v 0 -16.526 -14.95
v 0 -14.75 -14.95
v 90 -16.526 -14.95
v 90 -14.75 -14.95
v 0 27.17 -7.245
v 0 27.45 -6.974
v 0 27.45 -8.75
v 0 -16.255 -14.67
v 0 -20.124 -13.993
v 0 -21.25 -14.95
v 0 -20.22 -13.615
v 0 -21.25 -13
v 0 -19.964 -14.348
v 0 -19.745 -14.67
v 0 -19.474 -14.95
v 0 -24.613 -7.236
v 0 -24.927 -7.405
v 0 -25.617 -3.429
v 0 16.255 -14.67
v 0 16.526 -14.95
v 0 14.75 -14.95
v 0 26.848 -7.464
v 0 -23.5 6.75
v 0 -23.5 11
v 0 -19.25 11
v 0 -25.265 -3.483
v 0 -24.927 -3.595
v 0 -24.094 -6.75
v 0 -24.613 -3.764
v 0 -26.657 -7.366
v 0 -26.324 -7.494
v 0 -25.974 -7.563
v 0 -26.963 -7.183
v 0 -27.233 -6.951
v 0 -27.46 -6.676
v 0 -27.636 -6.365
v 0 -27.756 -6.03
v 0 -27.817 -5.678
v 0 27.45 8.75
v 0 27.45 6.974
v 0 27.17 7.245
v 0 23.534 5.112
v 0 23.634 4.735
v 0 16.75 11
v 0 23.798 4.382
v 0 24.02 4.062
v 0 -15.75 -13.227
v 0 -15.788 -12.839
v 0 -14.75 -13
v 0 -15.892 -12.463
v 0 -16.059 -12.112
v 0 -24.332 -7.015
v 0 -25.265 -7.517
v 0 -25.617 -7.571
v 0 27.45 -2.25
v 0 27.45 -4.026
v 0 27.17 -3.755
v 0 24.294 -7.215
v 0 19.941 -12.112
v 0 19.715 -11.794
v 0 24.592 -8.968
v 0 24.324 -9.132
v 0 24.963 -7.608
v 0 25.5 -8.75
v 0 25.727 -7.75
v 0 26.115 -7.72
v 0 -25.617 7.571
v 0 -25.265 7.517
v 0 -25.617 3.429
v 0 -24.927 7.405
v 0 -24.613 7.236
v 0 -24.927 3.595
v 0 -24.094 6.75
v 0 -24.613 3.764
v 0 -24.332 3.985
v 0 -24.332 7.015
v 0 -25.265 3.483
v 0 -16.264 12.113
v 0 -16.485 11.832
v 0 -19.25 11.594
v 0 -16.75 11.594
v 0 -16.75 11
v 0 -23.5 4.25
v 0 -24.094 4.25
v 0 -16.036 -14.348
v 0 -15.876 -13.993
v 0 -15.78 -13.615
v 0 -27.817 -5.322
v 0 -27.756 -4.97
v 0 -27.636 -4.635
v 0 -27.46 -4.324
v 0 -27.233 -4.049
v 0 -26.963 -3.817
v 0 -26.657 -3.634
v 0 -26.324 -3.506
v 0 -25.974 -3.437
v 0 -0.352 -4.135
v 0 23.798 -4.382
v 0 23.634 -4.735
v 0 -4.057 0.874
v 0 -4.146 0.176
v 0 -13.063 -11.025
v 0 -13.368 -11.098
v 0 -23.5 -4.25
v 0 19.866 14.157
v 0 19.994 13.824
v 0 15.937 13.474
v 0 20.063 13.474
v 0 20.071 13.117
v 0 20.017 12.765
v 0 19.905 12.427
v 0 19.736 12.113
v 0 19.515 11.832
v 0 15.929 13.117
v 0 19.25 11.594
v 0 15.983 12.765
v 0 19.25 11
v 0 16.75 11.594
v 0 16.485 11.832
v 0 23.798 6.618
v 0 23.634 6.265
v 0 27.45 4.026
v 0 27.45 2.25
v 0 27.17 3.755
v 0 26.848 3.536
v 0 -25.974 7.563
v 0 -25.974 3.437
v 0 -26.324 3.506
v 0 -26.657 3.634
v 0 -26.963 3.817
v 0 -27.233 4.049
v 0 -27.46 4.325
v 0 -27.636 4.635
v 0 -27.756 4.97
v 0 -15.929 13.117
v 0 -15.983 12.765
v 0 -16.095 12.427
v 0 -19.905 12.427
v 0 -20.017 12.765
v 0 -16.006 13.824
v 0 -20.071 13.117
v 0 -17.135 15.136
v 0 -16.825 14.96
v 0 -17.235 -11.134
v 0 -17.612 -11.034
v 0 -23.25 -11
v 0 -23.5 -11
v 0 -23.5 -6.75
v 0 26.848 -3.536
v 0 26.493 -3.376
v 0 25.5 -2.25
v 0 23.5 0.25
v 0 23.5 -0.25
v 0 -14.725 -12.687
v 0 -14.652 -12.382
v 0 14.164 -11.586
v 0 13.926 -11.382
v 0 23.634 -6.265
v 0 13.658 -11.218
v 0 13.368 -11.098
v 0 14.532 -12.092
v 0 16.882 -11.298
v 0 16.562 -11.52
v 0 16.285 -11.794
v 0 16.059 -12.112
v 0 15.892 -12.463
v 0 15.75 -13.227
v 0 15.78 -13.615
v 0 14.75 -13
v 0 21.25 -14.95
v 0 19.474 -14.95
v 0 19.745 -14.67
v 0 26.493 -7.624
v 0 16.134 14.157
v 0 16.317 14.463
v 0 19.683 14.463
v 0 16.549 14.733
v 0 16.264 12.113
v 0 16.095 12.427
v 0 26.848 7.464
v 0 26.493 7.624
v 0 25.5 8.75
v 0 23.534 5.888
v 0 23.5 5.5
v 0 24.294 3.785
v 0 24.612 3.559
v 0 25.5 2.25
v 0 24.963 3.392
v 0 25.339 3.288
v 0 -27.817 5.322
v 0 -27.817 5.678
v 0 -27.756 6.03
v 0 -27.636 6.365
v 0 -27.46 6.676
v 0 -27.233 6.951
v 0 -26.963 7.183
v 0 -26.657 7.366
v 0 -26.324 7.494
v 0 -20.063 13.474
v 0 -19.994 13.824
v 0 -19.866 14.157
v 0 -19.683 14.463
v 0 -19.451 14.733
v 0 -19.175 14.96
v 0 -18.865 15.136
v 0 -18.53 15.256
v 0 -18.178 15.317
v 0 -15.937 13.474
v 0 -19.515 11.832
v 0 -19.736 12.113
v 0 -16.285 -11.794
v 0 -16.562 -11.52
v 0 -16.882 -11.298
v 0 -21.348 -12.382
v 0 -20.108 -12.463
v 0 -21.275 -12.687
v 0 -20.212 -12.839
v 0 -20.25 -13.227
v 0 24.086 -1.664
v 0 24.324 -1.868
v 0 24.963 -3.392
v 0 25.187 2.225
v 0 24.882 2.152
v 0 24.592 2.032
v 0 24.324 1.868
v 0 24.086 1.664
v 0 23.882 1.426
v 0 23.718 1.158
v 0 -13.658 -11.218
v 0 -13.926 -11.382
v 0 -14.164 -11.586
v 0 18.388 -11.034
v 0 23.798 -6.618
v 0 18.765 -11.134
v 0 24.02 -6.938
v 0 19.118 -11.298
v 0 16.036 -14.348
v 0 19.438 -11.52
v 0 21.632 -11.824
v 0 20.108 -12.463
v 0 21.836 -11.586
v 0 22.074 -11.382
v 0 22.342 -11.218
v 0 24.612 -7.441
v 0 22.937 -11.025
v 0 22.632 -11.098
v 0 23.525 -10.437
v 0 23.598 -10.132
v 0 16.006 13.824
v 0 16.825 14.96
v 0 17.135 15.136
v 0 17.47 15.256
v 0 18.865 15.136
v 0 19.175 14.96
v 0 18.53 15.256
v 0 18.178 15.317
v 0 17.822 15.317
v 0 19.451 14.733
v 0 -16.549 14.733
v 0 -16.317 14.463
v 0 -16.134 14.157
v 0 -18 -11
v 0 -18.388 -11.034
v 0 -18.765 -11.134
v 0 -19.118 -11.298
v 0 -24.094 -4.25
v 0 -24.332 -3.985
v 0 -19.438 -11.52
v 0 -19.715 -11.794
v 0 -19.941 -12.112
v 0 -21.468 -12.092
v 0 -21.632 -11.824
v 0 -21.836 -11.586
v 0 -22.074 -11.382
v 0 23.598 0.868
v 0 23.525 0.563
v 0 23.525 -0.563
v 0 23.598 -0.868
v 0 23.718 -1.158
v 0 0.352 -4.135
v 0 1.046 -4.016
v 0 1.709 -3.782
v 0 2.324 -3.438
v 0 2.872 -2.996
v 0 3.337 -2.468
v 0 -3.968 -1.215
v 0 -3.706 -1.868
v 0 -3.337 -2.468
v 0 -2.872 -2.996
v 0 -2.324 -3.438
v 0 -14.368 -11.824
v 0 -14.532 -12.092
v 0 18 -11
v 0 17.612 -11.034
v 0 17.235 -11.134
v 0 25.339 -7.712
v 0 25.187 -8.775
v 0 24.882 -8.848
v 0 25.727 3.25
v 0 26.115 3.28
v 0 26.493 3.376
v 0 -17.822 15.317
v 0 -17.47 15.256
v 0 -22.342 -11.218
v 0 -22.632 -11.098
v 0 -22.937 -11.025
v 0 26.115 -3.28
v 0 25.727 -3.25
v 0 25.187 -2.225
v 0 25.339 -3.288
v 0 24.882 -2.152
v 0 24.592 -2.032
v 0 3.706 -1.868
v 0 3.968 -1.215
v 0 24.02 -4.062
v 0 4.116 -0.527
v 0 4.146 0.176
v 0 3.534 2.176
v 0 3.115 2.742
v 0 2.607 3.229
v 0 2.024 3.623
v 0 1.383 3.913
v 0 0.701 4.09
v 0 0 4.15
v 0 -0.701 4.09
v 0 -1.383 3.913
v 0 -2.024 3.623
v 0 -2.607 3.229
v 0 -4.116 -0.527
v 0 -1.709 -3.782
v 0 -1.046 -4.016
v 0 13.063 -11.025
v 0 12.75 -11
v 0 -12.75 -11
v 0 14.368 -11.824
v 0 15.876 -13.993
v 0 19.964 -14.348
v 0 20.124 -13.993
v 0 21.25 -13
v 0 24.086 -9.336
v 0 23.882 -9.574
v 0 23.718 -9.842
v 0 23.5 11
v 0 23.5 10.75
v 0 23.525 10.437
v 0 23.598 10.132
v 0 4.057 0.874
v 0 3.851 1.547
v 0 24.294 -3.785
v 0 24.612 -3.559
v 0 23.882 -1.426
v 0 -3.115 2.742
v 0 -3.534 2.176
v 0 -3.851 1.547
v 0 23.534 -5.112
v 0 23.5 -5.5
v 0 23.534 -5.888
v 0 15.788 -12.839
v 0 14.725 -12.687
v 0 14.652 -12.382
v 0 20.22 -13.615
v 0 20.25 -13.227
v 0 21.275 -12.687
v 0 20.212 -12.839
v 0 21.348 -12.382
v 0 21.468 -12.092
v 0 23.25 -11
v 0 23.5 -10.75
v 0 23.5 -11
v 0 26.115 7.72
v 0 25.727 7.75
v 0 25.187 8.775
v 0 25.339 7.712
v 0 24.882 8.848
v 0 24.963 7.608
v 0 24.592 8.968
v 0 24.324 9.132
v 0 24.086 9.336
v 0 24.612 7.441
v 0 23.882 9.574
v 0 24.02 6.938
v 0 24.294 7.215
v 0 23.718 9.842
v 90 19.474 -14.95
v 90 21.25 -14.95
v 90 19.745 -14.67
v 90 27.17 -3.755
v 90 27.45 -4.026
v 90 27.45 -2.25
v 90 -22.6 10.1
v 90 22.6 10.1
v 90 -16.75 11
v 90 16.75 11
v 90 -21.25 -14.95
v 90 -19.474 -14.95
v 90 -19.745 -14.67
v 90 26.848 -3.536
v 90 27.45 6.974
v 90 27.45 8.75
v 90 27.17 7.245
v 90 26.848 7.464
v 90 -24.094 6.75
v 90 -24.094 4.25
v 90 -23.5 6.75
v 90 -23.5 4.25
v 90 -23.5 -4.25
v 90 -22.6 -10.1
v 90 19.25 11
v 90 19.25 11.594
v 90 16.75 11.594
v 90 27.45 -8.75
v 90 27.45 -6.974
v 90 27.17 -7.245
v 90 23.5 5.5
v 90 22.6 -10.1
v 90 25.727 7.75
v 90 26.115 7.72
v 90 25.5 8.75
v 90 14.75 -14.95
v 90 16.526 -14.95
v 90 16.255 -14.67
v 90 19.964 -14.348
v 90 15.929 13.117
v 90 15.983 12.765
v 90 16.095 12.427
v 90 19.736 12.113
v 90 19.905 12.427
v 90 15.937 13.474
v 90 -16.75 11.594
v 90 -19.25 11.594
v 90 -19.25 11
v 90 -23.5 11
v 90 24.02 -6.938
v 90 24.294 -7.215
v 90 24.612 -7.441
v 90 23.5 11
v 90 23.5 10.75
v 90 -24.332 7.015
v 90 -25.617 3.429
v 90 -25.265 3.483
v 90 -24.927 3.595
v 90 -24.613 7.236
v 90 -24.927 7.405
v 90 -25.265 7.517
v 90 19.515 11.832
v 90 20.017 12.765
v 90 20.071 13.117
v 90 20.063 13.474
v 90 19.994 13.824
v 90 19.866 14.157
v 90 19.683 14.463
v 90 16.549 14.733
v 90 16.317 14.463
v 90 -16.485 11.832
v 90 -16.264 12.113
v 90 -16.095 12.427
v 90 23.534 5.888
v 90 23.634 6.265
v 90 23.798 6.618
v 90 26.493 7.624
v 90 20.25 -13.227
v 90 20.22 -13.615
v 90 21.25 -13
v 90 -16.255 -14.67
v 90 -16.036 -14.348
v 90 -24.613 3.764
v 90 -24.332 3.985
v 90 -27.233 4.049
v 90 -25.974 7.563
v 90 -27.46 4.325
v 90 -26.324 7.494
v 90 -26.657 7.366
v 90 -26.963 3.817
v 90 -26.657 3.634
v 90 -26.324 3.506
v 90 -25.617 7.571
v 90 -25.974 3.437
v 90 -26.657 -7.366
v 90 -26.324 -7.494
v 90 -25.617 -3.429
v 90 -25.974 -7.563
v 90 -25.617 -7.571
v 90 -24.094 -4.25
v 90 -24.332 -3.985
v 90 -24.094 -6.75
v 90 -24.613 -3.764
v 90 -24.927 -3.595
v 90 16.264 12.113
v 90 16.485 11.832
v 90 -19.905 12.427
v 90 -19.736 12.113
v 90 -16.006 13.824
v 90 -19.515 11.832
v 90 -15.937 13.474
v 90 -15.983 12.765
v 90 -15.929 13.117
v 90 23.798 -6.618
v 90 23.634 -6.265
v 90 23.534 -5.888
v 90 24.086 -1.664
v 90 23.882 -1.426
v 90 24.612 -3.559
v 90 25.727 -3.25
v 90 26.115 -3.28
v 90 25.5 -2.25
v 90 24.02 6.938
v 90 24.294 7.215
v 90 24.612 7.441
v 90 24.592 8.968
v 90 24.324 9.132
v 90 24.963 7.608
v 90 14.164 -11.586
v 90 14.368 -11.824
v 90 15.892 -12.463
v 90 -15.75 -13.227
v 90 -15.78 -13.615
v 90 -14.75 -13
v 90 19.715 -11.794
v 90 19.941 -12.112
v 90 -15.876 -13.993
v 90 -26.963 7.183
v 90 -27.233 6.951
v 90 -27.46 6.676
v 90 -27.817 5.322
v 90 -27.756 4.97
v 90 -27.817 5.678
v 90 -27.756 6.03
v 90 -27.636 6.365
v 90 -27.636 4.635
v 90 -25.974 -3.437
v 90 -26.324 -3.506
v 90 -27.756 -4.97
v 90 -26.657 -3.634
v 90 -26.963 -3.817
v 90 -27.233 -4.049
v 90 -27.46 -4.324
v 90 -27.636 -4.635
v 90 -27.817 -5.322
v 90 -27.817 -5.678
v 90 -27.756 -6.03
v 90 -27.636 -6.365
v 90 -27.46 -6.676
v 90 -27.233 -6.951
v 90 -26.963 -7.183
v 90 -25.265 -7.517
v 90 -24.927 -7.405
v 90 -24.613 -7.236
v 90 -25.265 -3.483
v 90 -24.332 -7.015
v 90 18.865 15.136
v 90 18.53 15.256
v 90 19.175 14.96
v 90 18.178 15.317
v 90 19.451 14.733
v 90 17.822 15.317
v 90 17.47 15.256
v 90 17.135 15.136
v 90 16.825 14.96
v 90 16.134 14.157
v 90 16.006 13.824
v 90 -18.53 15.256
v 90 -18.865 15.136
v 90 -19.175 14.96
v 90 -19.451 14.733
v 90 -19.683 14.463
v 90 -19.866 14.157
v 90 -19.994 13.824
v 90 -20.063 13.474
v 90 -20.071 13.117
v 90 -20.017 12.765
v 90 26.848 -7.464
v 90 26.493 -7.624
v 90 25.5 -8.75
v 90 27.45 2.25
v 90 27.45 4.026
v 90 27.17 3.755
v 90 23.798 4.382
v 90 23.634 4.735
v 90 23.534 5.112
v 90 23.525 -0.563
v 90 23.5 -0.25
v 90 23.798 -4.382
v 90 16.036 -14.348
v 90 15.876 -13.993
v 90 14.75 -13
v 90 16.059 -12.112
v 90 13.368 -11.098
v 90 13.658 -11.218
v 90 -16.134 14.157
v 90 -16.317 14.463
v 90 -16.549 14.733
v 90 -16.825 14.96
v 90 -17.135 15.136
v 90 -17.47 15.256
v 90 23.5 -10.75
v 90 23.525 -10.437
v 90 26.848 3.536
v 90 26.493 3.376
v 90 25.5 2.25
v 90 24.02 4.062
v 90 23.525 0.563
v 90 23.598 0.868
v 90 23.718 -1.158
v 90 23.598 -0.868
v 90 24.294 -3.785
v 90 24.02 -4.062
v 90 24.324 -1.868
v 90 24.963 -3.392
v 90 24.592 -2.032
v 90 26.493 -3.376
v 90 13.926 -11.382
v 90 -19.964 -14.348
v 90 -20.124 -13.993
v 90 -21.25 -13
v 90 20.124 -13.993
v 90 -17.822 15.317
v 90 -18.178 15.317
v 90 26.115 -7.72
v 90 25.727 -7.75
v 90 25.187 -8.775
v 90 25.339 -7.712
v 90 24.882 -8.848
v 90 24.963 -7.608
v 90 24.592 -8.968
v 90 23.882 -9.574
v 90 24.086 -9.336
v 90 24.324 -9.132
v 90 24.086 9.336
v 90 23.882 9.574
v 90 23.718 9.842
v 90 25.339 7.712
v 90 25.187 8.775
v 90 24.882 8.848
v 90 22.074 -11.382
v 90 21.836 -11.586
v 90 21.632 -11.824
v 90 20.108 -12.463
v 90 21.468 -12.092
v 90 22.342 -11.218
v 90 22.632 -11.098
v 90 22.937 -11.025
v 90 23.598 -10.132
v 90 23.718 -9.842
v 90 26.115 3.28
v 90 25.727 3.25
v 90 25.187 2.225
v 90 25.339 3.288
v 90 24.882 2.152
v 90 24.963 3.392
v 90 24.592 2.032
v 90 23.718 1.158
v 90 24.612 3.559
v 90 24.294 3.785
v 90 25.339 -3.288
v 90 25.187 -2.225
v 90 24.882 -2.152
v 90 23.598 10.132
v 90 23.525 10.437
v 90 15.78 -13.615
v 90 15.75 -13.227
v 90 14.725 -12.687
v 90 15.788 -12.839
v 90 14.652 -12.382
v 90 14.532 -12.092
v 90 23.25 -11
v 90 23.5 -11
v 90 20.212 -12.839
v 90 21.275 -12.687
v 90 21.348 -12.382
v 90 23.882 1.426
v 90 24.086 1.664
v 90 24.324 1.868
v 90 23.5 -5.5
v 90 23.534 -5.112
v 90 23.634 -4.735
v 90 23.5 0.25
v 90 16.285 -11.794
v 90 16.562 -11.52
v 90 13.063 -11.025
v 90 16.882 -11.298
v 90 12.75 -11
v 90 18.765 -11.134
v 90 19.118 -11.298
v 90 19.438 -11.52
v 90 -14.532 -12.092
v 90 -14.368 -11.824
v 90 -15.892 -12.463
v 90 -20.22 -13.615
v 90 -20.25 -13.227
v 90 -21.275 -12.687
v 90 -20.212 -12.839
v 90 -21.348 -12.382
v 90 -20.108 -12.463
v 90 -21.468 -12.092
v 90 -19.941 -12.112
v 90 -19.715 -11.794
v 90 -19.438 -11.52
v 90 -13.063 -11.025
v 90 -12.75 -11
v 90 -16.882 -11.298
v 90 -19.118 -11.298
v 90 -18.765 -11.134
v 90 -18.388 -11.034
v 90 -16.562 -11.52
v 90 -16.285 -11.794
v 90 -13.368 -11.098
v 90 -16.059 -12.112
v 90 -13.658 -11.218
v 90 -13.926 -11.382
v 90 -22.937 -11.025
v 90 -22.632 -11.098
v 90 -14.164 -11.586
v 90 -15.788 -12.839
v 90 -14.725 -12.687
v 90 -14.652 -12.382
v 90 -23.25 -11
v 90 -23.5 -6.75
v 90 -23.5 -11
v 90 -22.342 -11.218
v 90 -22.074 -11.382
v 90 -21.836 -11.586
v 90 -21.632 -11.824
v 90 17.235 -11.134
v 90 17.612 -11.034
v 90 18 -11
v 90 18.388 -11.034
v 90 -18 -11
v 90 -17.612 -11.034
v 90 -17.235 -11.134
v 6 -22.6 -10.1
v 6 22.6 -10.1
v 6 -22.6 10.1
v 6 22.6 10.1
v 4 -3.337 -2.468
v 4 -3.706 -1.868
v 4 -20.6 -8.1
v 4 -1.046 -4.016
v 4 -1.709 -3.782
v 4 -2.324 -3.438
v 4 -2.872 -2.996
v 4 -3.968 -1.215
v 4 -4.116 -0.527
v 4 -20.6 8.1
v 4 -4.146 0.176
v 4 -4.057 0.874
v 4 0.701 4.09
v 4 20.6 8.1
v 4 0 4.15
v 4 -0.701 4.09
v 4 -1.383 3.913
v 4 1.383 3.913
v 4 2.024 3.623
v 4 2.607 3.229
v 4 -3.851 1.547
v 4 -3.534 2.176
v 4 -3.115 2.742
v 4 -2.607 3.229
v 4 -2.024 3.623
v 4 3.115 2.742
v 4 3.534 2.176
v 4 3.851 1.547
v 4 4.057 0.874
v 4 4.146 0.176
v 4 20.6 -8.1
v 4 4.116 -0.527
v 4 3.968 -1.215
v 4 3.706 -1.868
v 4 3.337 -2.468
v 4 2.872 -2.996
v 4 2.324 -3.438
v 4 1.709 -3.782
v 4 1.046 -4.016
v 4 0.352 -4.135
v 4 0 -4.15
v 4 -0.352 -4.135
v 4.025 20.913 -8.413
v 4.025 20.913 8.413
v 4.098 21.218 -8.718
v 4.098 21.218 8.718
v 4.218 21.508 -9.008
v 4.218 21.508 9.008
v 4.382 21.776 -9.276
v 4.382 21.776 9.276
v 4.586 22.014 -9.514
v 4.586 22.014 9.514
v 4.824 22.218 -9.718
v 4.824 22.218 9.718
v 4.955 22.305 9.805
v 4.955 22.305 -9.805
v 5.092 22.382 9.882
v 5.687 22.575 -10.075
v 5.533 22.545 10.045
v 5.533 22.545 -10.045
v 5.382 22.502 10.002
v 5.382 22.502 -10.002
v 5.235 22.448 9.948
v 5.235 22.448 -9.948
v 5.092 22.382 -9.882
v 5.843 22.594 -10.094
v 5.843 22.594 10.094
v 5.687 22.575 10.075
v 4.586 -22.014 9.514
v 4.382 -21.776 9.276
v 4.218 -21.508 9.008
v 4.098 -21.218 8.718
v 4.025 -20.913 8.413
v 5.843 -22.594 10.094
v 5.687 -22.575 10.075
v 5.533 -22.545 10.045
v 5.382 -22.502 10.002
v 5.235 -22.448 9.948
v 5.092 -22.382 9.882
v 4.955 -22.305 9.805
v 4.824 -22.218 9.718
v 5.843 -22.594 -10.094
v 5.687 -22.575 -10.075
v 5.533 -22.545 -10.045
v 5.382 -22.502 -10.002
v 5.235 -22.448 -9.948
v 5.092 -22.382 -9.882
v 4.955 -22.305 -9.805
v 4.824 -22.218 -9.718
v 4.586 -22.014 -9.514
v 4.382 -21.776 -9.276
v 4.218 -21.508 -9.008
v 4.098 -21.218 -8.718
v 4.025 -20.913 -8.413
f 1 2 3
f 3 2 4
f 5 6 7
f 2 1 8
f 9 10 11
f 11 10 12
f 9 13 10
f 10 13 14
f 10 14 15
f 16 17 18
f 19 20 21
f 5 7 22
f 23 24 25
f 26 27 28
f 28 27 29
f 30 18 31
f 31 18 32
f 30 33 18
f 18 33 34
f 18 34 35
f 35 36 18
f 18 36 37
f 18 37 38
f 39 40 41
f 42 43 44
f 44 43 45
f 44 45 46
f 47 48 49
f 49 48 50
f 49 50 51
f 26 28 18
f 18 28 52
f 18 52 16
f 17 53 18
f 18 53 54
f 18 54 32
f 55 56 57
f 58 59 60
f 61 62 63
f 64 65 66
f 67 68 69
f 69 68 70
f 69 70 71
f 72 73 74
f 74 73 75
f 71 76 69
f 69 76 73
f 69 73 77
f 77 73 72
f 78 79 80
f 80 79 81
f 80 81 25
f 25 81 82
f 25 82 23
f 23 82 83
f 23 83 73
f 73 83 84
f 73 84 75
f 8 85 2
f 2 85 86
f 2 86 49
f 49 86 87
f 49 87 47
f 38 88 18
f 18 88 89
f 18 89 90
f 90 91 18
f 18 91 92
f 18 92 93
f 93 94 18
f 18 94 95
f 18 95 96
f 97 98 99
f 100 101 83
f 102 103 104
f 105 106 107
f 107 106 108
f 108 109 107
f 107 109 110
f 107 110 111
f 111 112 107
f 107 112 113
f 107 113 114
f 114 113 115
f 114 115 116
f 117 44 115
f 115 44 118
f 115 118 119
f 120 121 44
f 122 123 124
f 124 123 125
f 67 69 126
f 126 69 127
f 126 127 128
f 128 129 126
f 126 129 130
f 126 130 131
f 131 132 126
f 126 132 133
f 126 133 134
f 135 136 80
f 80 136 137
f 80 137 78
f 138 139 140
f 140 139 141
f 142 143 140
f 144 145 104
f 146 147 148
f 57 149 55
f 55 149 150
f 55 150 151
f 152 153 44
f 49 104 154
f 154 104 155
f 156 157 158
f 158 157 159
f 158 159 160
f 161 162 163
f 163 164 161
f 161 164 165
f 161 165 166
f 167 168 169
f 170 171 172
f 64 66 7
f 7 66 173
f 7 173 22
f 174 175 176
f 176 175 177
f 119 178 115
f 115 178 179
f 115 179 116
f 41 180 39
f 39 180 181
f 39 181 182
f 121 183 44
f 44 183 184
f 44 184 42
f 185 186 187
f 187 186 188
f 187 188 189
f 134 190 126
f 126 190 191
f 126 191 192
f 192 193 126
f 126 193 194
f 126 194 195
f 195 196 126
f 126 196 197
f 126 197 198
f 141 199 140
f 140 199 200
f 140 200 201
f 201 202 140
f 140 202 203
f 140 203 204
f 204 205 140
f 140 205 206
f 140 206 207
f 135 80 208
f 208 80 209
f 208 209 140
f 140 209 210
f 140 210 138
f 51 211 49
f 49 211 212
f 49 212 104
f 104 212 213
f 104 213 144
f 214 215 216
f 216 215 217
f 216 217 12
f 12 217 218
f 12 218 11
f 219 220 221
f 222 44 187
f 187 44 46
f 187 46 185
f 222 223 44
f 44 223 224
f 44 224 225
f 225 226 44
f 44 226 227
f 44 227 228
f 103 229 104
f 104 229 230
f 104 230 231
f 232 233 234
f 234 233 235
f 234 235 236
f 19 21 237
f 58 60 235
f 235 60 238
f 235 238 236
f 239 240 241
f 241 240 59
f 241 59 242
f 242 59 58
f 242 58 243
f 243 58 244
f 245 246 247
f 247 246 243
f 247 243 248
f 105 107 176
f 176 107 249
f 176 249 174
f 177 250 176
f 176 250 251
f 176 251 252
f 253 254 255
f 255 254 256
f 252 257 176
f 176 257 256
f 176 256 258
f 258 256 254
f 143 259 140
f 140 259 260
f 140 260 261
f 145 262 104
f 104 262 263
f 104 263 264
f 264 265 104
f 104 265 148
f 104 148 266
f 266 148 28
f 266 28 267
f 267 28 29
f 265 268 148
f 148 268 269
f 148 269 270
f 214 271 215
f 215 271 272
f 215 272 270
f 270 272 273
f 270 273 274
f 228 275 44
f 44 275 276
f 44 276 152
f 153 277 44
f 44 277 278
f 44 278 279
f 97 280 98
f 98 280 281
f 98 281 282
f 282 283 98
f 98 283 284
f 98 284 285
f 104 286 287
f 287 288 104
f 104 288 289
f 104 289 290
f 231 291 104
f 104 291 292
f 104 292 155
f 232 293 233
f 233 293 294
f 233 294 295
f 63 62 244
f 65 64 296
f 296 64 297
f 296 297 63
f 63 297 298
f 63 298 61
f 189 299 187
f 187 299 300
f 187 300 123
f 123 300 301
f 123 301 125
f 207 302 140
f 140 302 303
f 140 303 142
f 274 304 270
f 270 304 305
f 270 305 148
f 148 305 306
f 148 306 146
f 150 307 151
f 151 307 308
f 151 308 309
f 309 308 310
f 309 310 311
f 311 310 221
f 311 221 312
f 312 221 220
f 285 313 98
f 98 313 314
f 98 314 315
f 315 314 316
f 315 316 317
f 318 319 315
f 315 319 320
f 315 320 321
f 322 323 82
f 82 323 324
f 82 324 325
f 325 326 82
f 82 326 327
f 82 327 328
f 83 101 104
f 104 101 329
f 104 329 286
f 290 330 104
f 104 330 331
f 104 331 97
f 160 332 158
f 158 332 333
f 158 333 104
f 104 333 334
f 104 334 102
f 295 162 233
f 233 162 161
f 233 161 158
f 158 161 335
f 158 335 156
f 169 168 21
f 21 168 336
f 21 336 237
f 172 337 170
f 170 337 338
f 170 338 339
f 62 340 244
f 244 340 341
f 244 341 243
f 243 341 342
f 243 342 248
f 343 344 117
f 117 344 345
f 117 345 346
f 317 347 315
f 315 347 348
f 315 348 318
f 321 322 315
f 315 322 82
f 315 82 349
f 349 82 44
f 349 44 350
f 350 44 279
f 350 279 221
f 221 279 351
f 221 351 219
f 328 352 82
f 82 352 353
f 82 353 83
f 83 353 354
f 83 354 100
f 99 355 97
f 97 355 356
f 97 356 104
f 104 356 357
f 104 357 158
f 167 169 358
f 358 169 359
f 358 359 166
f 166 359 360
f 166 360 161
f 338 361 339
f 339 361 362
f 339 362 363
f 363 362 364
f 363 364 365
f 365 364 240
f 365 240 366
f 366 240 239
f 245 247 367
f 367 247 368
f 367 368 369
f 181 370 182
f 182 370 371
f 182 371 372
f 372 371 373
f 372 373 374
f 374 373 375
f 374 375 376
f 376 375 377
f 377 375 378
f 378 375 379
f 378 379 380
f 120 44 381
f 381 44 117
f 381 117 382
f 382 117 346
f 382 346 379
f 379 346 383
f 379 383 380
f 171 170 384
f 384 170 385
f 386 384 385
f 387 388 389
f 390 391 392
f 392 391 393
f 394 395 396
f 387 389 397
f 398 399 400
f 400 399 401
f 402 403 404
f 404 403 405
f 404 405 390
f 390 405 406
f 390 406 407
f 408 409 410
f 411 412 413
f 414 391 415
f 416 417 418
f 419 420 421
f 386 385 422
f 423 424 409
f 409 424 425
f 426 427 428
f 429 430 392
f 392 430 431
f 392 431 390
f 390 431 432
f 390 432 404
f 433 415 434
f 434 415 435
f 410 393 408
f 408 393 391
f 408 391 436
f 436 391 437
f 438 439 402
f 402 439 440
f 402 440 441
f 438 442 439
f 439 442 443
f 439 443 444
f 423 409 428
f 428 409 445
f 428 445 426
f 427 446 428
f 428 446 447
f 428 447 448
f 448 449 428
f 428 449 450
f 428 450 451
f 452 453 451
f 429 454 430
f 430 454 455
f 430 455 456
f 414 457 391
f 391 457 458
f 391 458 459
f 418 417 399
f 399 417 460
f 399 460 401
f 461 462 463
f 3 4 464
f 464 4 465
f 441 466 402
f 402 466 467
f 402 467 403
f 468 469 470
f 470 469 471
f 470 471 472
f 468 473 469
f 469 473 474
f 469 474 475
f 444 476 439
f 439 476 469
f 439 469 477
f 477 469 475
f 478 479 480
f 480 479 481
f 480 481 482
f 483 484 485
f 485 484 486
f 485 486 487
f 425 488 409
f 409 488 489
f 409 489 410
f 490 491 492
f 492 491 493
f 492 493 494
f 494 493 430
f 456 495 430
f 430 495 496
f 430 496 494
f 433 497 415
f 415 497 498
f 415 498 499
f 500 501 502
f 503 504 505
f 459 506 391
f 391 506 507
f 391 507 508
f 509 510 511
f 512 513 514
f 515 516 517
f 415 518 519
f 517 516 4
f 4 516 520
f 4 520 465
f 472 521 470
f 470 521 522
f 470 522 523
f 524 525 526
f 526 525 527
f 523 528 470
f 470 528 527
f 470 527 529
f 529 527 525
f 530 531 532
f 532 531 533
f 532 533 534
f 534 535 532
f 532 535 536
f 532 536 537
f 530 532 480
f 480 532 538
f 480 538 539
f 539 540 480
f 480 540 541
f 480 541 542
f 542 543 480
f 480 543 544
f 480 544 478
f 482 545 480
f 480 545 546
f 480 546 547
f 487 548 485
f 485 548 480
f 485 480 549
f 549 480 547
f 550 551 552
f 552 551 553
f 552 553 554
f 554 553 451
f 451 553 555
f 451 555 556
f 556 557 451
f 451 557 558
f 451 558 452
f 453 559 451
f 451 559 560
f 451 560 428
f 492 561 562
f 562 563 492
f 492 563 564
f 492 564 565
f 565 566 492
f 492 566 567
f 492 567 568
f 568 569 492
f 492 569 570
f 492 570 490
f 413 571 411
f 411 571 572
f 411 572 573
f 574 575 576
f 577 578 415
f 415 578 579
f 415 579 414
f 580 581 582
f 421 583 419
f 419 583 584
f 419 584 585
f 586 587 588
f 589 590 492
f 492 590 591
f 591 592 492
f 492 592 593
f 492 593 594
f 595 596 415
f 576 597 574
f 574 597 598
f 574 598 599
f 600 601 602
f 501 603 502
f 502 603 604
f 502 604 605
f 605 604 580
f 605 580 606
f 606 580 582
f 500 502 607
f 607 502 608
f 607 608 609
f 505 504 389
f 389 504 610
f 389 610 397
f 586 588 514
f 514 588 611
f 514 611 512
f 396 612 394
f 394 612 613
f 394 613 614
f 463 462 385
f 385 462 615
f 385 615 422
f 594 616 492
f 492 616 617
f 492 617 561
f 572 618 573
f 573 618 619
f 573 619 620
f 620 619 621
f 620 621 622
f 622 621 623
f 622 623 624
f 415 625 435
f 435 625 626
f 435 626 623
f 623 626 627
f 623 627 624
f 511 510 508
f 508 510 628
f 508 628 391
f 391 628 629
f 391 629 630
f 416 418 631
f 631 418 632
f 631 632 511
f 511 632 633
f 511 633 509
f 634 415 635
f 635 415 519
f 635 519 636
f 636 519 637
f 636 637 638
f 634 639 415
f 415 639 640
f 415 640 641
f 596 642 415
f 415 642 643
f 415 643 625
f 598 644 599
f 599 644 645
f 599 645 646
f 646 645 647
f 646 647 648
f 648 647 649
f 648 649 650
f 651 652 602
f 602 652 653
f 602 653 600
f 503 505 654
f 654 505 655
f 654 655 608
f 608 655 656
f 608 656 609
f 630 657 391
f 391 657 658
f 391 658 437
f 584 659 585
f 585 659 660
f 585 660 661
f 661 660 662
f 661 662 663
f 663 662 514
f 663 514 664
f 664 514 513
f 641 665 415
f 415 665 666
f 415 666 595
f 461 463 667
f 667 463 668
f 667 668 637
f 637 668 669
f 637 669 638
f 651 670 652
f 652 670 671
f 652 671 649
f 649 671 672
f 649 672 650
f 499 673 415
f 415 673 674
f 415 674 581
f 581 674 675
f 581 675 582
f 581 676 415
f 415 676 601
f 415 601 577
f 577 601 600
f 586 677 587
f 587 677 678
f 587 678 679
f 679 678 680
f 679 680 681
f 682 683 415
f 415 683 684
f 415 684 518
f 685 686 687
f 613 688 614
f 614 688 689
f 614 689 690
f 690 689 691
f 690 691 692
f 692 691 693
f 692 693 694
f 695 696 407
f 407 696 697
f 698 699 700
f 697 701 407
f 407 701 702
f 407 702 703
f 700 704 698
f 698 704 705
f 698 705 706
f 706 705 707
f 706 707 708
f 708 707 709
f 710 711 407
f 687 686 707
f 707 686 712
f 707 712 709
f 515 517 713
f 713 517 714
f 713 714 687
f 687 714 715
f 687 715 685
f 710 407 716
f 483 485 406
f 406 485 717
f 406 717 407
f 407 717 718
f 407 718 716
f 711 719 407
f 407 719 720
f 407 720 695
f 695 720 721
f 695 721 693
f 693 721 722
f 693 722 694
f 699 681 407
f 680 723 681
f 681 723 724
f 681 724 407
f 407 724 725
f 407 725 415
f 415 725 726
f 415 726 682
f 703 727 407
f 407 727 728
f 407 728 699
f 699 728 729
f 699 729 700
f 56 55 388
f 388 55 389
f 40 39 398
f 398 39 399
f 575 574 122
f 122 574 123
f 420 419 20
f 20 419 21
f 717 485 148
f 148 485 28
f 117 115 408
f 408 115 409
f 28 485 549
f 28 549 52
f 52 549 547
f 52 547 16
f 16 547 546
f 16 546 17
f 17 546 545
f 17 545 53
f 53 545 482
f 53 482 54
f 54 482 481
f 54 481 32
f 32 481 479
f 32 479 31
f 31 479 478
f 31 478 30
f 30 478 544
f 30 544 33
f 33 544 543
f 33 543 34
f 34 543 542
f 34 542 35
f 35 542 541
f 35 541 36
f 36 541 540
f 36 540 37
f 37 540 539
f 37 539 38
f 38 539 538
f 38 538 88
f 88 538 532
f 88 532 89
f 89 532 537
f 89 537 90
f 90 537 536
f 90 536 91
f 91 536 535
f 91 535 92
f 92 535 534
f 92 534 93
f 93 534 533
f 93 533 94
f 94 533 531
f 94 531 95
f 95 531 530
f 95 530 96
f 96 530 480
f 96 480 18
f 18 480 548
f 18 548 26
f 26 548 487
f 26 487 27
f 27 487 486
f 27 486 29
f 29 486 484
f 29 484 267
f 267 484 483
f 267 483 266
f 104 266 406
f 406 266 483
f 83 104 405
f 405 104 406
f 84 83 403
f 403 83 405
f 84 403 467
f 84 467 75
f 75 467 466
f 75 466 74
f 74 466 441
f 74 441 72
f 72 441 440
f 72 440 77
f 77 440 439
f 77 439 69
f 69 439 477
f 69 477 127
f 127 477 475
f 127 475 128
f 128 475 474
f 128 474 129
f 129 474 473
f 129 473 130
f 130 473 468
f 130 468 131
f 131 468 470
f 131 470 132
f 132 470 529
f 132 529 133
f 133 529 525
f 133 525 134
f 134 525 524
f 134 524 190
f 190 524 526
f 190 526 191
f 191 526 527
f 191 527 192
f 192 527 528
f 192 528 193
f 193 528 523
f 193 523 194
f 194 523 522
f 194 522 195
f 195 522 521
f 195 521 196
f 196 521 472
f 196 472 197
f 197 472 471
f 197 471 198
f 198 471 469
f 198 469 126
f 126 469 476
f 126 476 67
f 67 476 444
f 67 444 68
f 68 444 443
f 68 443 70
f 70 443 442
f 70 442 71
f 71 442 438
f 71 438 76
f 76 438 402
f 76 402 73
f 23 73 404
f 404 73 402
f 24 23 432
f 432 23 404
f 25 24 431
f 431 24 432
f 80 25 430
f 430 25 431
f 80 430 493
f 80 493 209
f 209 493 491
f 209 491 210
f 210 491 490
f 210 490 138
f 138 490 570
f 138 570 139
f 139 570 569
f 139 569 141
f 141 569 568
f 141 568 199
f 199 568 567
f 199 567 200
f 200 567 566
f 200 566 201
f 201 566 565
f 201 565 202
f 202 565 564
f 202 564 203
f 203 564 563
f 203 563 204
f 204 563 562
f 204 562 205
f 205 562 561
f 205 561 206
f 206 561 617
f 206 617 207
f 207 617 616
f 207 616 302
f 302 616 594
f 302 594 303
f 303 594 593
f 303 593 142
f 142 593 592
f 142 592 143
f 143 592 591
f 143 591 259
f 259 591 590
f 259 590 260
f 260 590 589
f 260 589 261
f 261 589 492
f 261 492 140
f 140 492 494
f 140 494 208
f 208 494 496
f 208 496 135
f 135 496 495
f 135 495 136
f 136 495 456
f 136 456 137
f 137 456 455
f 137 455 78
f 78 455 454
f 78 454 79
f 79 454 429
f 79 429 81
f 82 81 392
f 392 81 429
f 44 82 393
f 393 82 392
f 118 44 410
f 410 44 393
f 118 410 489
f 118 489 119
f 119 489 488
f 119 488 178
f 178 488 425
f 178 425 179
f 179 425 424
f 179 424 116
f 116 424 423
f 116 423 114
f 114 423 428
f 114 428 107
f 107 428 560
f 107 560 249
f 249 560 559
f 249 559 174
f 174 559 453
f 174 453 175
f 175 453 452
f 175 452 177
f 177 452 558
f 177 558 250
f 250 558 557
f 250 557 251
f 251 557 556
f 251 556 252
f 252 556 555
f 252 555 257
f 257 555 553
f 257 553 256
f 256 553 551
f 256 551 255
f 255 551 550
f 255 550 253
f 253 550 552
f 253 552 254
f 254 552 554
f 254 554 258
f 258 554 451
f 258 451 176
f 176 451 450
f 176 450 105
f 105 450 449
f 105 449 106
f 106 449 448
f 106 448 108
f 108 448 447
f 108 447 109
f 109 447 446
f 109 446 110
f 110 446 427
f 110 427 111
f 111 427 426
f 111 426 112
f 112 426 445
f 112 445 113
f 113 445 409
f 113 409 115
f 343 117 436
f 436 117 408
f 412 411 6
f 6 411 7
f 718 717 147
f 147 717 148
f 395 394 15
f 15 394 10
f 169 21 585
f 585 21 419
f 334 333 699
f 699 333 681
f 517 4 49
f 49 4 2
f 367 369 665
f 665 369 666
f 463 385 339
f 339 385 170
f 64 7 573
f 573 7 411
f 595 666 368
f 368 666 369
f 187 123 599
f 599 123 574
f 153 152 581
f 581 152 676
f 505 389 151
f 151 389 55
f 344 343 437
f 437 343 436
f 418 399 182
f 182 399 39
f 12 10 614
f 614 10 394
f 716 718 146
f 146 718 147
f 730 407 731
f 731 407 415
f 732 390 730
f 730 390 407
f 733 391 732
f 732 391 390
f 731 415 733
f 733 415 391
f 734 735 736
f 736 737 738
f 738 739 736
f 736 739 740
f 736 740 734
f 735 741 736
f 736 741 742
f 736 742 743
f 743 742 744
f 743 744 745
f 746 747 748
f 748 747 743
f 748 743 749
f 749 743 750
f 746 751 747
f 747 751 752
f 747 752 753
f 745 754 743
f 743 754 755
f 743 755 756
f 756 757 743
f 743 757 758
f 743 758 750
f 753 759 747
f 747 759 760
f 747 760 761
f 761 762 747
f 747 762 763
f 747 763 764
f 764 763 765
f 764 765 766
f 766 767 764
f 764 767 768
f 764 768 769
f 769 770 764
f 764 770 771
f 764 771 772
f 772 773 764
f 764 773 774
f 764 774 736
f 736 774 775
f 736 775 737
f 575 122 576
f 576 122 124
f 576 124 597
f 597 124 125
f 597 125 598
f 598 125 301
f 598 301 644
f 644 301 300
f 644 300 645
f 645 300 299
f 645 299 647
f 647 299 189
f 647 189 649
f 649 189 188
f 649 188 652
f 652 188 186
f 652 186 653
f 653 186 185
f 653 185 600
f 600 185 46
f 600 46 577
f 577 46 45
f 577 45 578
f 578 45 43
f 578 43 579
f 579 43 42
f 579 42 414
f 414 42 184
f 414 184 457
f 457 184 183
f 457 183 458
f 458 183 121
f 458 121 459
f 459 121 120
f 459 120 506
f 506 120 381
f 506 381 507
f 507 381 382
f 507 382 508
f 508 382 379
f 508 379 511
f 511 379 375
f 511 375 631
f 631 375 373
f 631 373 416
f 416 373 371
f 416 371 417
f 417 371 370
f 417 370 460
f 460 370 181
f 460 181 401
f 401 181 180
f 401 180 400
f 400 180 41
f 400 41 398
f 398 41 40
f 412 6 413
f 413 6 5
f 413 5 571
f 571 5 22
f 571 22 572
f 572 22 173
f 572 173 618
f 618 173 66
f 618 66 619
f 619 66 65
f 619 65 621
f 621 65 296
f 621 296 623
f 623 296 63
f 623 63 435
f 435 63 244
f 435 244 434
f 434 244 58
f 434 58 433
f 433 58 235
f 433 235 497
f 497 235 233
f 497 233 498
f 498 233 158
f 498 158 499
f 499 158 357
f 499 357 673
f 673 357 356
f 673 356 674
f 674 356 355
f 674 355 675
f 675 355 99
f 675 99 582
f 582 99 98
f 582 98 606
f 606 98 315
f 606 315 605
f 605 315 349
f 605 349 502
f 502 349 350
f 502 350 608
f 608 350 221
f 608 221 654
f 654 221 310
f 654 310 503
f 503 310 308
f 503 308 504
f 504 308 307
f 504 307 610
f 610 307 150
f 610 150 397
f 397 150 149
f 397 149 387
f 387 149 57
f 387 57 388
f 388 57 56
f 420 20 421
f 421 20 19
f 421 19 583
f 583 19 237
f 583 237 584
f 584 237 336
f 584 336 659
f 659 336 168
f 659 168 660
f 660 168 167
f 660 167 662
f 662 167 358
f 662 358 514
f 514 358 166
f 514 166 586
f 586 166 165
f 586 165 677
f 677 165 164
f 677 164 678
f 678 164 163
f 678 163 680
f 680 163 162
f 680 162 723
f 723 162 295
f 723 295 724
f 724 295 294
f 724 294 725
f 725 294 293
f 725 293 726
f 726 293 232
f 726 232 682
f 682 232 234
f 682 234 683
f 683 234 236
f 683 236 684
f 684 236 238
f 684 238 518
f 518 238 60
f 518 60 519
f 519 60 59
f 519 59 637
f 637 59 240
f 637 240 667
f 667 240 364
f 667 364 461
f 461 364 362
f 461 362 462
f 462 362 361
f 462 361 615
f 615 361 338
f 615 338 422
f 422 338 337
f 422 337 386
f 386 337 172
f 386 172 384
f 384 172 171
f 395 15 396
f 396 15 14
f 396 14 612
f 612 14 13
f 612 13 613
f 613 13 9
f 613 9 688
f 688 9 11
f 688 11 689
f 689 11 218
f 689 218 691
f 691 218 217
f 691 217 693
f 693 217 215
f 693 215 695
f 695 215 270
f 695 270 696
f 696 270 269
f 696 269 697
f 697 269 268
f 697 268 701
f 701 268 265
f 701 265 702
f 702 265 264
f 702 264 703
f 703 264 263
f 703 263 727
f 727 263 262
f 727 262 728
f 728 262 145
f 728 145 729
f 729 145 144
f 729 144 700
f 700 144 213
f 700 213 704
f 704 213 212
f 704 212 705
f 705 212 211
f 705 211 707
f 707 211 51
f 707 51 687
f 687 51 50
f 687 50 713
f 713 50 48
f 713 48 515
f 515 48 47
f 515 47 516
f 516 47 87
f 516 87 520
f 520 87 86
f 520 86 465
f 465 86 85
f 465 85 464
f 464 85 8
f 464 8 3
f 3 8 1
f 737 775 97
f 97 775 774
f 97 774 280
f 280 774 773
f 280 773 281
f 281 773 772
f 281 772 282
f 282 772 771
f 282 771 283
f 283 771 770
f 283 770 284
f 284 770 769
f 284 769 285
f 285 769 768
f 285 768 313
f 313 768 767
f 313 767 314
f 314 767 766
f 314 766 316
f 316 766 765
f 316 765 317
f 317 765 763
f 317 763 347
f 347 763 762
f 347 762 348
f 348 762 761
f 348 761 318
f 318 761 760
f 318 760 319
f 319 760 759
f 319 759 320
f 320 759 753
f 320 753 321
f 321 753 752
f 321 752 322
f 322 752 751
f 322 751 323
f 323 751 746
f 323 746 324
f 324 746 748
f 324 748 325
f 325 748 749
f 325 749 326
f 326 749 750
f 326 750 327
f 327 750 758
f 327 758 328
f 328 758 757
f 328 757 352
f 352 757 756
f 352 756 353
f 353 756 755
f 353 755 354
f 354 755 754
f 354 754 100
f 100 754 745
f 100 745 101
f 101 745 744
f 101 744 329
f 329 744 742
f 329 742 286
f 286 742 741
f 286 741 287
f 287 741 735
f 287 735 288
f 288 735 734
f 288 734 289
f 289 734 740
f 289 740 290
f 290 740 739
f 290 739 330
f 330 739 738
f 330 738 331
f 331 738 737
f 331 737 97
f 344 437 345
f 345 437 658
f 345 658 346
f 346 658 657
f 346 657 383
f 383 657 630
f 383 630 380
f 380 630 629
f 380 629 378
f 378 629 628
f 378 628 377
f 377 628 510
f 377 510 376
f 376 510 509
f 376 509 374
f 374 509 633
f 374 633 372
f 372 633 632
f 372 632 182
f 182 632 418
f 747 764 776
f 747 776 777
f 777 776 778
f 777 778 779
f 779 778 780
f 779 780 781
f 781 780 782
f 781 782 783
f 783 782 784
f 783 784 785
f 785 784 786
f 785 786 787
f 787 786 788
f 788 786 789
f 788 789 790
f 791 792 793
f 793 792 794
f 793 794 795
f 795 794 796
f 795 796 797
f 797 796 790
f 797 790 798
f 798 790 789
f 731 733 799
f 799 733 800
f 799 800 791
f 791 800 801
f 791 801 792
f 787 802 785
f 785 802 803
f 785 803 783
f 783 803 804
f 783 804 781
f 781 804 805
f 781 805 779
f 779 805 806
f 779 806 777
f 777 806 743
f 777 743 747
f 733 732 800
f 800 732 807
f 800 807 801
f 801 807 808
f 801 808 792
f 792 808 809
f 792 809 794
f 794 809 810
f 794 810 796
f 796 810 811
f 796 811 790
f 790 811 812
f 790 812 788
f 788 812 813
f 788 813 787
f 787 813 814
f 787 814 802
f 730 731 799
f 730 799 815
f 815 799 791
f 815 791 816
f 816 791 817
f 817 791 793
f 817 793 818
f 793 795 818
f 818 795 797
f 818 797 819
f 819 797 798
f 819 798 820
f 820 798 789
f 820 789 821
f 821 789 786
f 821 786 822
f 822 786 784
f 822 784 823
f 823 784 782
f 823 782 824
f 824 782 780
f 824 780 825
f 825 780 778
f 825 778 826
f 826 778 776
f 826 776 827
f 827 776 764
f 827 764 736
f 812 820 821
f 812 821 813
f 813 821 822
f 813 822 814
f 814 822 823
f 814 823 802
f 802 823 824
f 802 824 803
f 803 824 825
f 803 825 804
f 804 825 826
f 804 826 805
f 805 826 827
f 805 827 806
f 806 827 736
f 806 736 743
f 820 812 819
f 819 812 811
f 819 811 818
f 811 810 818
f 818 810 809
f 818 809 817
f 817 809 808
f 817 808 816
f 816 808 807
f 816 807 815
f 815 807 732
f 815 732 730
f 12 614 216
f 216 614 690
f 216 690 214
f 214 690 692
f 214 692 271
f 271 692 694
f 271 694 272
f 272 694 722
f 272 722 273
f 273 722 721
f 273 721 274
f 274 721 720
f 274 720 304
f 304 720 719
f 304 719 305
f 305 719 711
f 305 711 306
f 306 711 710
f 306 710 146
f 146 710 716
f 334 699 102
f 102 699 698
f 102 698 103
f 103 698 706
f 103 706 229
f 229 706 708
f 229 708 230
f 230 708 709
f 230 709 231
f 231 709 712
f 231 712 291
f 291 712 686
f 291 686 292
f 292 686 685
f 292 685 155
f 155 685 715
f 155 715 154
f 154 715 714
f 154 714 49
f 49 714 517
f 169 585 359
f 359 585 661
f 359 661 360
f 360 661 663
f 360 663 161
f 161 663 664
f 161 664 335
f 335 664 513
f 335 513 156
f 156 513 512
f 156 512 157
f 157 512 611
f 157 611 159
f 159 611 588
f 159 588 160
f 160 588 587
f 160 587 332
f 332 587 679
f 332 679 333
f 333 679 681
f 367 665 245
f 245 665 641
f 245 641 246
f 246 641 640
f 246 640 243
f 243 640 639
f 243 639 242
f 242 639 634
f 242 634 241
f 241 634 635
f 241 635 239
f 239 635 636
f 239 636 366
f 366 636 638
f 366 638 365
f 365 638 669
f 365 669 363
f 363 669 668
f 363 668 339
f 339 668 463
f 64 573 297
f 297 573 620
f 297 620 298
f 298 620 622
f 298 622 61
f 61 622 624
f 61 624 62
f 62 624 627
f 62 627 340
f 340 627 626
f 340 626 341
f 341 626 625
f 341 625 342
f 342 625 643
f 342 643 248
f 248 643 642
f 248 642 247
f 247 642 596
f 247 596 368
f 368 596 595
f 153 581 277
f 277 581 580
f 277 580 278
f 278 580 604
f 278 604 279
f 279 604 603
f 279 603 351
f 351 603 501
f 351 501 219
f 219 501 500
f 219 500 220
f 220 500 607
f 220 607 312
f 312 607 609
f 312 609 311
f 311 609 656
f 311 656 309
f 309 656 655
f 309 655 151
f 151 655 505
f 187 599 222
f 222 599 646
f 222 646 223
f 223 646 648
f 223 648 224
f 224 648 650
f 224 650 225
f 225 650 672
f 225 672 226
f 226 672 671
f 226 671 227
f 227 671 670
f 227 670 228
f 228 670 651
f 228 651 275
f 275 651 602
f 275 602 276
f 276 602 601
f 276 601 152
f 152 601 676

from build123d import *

# Parameters (mm, degrees)
EXTRUDE_1_DEPTH             = 90
SKETCH_2_W                  = 90
SKETCH_2_H                  = 17.75
EXTRUDE_2_DEPTH             = 8.2
SKETCH_3_W                  = 90
SKETCH_3_H                  = 50.95
EXTRUDE_3_DEPTH             = 8.2
SKETCH_4_W                  = 3.95
SKETCH_4_H                  = 29.5
CUT_EXTRUDE_1_DEPTH         = 96.44153315
SKETCH_5_W                  = 3.95
SKETCH_5_H                  = 6.2
CUT_EXTRUDE_2_DEPTH         = 96.44153315
SKETCH_6_W                  = 2.25
SKETCH_6_H                  = 3.95
CUT_EXTRUDE_3_DEPTH         = 96.44153315
SKETCH_7_W                  = 4.5
SKETCH_7_H                  = 3.95
CUT_EXTRUDE_4_DEPTH         = 96.44153315
SKETCH_8_W                  = 2.25
SKETCH_8_H                  = 3.95
CUT_EXTRUDE_5_DEPTH         = 96.44153315
SKETCH_9_W                  = 3.95
SKETCH_9_H                  = 2.25
CUT_EXTRUDE_6_DEPTH         = 96.44153315
SKETCH_10_W                 = 20.2
SKETCH_10_H                 = 45.2
CUT_EXTRUDE_7_DEPTH         = 86
HOLE_WIZARD_2_5_2_5_1_D     = 2.5
HOLE_WIZARD_4_5_4_5_1_D     = 4.5
HOLE_WIZARD_8_3_8_3_1_D     = 8.3
HOLE_WIZARD_8_3_8_3_1_DEPTH = 3.2
FILLET_1_R                  = 2
FILLET_2_R                  = 2
EXTRUDE_START               = -90
SKETCH_17_R                 = 1.25
EXTRUDE_4_DEPTH             = 90
CUT_EXTRUDE_START           = -100
SKETCH_18_R                 = 4.15
CUT_EXTRUDE_8_DEPTH         = 100


with BuildPart() as part:
    # Эскиз1 → Бобышка-Вытянуть1 (new body)
    with BuildSketch(Plane(origin=(90, 0, 0), x_dir=(0, 0, -1), z_dir=(1, 0, 0))):
        with BuildLine():
            Line((6.75, -24.093761792), (6.75, 19.25))
            Line((6.75, 19.25), (-11.593761792, 19.25))
            ThreePointArc((-11.593761792, 19.25), (-15.325, 18), (-11.593761792, 16.75))
            Line((-11.593761792, 16.75), (-11, 16.75))
            Line((-11, 16.75), (-11, -16.75))
            Line((-11, -16.75), (-11.593761792, -16.75))
            ThreePointArc((-11.593761792, -16.75), (-15.325, -18), (-11.593761792, -19.25))
            Line((-11.593761792, -19.25), (-11, -19.25))
            Line((-11, -19.25), (-11, -23.5))
            Line((-11, -23.5), (-6.75, -23.5))
            Line((-6.75, -23.5), (-6.75, -24.093761792))
            ThreePointArc((-6.75, -24.093761792), (-5.5, -27.825), (-4.25, -24.093761792))
            Line((-4.25, -24.093761792), (-4.25, -23.5))
            Line((-4.25, -23.5), (4.25, -23.5))
            Line((4.25, -23.5), (4.25, -24.093761792))
            ThreePointArc((4.25, -24.093761792), (5.5, -27.825), (6.75, -24.093761792))
        make_face()
    extrude(amount=-EXTRUDE_1_DEPTH)

    # Эскиз2 → Бобышка-Вытянуть2 (add)
    with BuildSketch(Plane(origin=(0, 19.25, 0), x_dir=(-1, 0, 0), z_dir=(0, 1, 0))):
        with Locations((-45, 2.125)):
            Rectangle(SKETCH_2_W, SKETCH_2_H)
    extrude(amount=EXTRUDE_2_DEPTH)

    # Эскиз3 → Бобышка-Вытянуть3 (add)
    with BuildSketch(Plane(origin=(0, 0, -6.75), x_dir=(-1, 0, 0), z_dir=(0, 0, -1))):
        with Locations((-45, 1.975)):
            Rectangle(SKETCH_3_W, SKETCH_3_H)
    extrude(amount=EXTRUDE_3_DEPTH)

    # Эскиз4 → Вырез-Вытянуть1 (cut, through all)
    with BuildSketch(Plane.ZY):
        with Locations((-12.975, 0)):
            Rectangle(SKETCH_4_W, SKETCH_4_H)
    extrude(amount=-CUT_EXTRUDE_1_DEPTH, mode=Mode.SUBTRACT)

    # Эскиз5 → Вырез-Вытянуть2 (cut, through all)
    with BuildSketch(Plane.ZY):
        with Locations((-12.975, 24.35)):
            Rectangle(SKETCH_5_W, SKETCH_5_H)
    extrude(amount=-CUT_EXTRUDE_2_DEPTH, mode=Mode.SUBTRACT)

    # Эскиз6 → Вырез-Вытянуть3 (cut, through all)
    with BuildSketch(Plane.ZY):
        with Locations((-9.875, 25.475)):
            Rectangle(SKETCH_6_W, SKETCH_6_H)
    extrude(amount=-CUT_EXTRUDE_3_DEPTH, mode=Mode.SUBTRACT)

    # Эскиз7 → Вырез-Вытянуть4 (cut, through all)
    with BuildSketch(Plane.ZY):
        with Locations((0, 25.475)):
            Rectangle(SKETCH_7_W, SKETCH_7_H)
    extrude(amount=-CUT_EXTRUDE_4_DEPTH, mode=Mode.SUBTRACT)

    # Эскиз8 → Вырез-Вытянуть5 (cut, through all)
    with BuildSketch(Plane.ZY):
        with Locations((9.875, 25.475)):
            Rectangle(SKETCH_8_W, SKETCH_8_H)
    extrude(amount=-CUT_EXTRUDE_5_DEPTH, mode=Mode.SUBTRACT)

    # Эскиз9 → Вырез-Вытянуть6 (cut, through all)
    with BuildSketch(Plane.ZY):
        with Locations((-12.975, -22.375)):
            Rectangle(SKETCH_9_W, SKETCH_9_H)
    extrude(amount=-CUT_EXTRUDE_6_DEPTH, mode=Mode.SUBTRACT)

    # Эскиз10 → Вырез-Вытянуть7 (cut)
    with BuildSketch(Plane(origin=(90, 0, 0), x_dir=(0, 0, -1), z_dir=(1, 0, 0))):
        Rectangle(SKETCH_10_W, SKETCH_10_H)
    extrude(amount=-CUT_EXTRUDE_7_DEPTH, mode=Mode.SUBTRACT)

    # Диаметр отверстия Ø2.5 (2.5)1 (through all)
    with Locations(Plane(origin=(90, 0, 0), x_dir=(0, 0, -1), z_dir=(1, 0, 0))):
        with Locations((5.5, -25.75), (-13.25, -18), (-5.5, -25.75), (-13.25, 18)):
            Hole(HOLE_WIZARD_2_5_2_5_1_D / 2)

    # Диаметр отверстия Ø4.5 (4.5)1 (through all)
    with Locations(Plane.ZY):
        with Locations((-13.25, -18), (-13.25, 18), (-5.5, 25.75), (5.5, 25.75)):
            Hole(HOLE_WIZARD_4_5_4_5_1_D / 2)

    # Диаметр отверстия Ø8.3 (8.3)1
    with Locations(Plane.ZY):
        with Locations((0, 0)):
            Hole(HOLE_WIZARD_8_3_8_3_1_D / 2, depth=HOLE_WIZARD_8_3_8_3_1_DEPTH)

    # Скругление1
    fillet_1_edges = [part.edges().sort_by_distance(p)[0] for p in [
        (45, 23.5, 8.75),
    ]]
    fillet(fillet_1_edges, radius=FILLET_1_R)

    # Скругление2
    fillet_2_edges = [part.edges().sort_by_distance(p)[0] for p in [
        (45, 23.5, -8.75),
        (45, 23.5, 2.25),
        (45, 23.5, -2.25),
        (45, -21.25, -11),
        (4, 0, -10.1),
        (4, -22.6, 0),
        (4, 0, 10.1),
        (4, 22.6, 0),
        (45, 14.75, -11),
        (45, -14.75, -11),
        (45, 21.25, -11),
    ]]
    fillet(fillet_2_edges, radius=FILLET_2_R)

    # Эскиз17 → Бобышка-Вытянуть4 (add)
    with BuildSketch(Plane(origin=(90, 0, 0), x_dir=(0, 0, -1), z_dir=(1, 0, 0)).offset(EXTRUDE_START)):
        with Locations((5.5, -25.75)):
            Circle(SKETCH_17_R)
        with Locations((-5.5, -25.75)):
            Circle(SKETCH_17_R)
        with Locations((-13.25, -18)):
            Circle(SKETCH_17_R)
        with Locations((-13.25, 18)):
            Circle(SKETCH_17_R)
    extrude(amount=EXTRUDE_4_DEPTH)

    # Эскиз18 → Вырез-Вытянуть8 (cut)
    with BuildSketch(Plane.ZY.offset(CUT_EXTRUDE_START)):
        Circle(SKETCH_18_R)
    extrude(amount=CUT_EXTRUDE_8_DEPTH, mode=Mode.SUBTRACT)


solid = part.part
